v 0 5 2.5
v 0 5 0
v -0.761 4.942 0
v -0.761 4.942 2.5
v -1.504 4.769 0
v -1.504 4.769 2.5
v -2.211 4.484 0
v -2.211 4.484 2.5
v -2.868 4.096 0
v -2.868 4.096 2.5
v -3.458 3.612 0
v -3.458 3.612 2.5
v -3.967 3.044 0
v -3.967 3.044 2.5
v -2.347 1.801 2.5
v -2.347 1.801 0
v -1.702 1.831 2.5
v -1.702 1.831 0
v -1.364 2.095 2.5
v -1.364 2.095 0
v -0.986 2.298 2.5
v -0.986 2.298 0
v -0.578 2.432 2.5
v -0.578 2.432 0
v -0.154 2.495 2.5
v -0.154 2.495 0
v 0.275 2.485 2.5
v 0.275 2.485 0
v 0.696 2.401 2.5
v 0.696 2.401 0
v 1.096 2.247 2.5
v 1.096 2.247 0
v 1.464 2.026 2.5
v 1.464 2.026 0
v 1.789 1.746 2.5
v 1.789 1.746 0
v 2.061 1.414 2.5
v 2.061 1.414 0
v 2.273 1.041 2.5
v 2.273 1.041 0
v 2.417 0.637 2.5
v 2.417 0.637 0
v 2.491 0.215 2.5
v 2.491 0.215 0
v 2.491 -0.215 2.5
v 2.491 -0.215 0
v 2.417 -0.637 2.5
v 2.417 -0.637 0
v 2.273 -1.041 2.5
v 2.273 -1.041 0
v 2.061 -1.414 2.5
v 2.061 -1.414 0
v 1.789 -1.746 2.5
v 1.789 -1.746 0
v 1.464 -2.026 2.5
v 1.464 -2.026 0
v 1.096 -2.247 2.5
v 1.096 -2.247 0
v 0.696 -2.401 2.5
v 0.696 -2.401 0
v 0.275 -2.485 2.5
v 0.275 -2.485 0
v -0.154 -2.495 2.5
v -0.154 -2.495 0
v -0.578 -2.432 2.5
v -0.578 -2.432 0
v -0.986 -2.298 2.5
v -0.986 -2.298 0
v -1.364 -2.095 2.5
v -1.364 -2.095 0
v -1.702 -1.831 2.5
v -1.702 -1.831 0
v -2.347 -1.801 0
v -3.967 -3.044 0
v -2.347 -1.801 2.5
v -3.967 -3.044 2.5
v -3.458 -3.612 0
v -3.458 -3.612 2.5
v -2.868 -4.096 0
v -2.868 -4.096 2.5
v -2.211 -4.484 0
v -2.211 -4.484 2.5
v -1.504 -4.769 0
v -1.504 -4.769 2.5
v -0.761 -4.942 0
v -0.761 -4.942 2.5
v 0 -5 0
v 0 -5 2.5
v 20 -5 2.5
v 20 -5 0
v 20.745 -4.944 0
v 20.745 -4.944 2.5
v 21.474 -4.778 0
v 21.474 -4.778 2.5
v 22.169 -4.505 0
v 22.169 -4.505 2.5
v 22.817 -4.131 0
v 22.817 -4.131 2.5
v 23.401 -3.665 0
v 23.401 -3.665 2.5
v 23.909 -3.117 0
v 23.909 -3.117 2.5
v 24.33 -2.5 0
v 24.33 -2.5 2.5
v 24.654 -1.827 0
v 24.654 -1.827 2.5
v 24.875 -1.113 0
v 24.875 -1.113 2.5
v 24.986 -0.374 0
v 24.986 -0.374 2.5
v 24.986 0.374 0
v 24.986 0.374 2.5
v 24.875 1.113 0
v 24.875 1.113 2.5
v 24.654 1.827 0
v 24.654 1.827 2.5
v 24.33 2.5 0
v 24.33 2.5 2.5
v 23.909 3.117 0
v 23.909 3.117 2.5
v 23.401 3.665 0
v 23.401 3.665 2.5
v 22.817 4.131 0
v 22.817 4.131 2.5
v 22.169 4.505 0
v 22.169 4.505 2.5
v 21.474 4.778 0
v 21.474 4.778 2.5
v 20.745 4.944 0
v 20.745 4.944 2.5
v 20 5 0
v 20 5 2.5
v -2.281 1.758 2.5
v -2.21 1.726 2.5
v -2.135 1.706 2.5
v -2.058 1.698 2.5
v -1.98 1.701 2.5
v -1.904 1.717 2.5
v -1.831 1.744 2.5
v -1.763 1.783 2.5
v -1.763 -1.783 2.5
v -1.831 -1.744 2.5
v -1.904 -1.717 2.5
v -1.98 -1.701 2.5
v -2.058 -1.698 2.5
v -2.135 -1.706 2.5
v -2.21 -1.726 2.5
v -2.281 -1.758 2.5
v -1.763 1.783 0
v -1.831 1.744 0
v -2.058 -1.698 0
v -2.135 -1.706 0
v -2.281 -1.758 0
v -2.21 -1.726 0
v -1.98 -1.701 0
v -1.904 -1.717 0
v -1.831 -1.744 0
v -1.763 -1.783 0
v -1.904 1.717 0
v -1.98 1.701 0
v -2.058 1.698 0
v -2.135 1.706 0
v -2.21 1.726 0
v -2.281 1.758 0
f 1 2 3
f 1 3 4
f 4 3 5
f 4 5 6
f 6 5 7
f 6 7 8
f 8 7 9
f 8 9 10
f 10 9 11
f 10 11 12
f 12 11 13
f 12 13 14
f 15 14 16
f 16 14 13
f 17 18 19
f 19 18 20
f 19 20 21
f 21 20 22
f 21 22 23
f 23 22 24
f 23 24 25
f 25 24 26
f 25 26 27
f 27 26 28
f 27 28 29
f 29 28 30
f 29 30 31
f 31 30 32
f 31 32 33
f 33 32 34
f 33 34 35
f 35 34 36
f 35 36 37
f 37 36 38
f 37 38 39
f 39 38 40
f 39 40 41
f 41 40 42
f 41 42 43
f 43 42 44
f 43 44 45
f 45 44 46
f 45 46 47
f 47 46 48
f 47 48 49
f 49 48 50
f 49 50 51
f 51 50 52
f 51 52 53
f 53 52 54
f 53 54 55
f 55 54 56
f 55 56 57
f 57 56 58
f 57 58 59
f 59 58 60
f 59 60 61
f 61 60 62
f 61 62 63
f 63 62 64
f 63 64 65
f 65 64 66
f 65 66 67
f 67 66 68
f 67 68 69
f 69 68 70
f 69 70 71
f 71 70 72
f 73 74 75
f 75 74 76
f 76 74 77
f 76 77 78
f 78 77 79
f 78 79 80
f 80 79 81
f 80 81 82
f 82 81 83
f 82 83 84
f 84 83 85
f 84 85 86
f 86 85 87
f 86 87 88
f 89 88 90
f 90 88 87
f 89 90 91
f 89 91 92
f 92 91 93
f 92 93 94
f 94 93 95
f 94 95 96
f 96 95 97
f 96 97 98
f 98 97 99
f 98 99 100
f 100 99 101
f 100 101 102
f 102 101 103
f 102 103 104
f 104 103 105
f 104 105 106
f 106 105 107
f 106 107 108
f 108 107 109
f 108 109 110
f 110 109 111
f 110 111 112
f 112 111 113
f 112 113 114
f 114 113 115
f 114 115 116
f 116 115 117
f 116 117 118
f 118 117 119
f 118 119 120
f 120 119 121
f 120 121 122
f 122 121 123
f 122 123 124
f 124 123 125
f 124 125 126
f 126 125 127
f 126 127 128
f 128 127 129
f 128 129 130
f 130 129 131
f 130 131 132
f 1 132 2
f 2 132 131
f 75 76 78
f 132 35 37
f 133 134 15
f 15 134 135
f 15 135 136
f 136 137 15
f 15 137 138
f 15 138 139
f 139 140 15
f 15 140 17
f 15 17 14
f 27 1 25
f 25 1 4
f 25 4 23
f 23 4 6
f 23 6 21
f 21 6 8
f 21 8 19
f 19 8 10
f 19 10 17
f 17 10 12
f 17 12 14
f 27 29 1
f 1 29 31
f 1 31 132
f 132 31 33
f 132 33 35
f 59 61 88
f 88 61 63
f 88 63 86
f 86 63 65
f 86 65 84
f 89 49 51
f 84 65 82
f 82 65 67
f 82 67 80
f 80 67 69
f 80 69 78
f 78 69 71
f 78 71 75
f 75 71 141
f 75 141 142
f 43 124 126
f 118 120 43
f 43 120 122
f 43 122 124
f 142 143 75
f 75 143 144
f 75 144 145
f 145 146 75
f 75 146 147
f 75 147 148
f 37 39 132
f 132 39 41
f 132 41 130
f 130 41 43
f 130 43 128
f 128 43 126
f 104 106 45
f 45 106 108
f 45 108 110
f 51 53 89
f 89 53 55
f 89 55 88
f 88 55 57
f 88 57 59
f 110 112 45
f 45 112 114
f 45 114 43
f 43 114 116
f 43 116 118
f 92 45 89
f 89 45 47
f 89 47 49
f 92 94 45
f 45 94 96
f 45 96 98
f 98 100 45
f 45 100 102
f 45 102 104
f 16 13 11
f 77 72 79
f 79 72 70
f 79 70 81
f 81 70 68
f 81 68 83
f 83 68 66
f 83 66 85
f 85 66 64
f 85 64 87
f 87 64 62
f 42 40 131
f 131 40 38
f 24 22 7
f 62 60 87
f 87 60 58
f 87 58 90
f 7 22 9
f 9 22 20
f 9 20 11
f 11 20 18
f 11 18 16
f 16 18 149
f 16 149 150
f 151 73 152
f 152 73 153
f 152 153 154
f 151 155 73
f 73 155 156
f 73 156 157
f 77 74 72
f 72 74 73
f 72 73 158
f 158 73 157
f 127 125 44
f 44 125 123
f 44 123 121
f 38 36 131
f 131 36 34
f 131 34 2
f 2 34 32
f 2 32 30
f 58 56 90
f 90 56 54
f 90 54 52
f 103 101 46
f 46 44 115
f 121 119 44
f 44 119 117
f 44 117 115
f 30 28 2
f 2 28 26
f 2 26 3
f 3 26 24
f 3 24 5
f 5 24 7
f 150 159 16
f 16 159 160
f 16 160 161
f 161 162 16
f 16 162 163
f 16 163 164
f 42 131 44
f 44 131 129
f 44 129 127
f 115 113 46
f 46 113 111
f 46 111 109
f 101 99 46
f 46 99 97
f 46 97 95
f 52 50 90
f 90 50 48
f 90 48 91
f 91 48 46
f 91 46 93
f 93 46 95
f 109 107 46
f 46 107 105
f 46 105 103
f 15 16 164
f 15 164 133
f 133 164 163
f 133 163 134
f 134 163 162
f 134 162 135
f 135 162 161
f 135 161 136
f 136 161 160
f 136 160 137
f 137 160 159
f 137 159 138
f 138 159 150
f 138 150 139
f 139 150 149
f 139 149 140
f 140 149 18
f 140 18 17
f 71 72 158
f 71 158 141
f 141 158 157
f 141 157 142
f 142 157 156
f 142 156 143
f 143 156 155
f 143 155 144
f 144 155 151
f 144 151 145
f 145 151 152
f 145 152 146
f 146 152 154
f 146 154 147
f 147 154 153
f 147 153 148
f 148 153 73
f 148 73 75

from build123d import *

# Parameters (mm, degrees)
BOSS_EXTRUDE1_DEPTH = 2.5
FILLET1_R           = 0.5


with BuildPart() as part:
    # Sketch1 → Boss-Extrude1 (new body)
    with BuildSketch(Plane.XY):
        with BuildLine():
            Line((-3.966766701, 3.043807145), (-1.983383351, 1.521903573))
            ThreePointArc((-1.983383351, 1.521903573), (2.5, 0), (-1.983383351, -1.521903573))
            Line((-1.983383351, -1.521903573), (-3.966766701, -3.043807145))
            ThreePointArc((-3.966766701, -3.043807145), (-2.211443451, -4.484363708), (0, -5))
            Line((0, -5), (20, -5))
            ThreePointArc((20, -5), (25, 0), (20, 5))
            Line((20, 5), (0, 5))
            ThreePointArc((0, 5), (-2.211443451, 4.484363708), (-3.966766701, 3.043807145))
        make_face()
    extrude(amount=BOSS_EXTRUDE1_DEPTH)

    # Fillet1
    fillet1_edges = [part.edges().sort_by_distance(p)[0] for p in [
        (-1.983383351, -1.521903573, 1.25),
        (-1.983383351, 1.521903573, 1.25),
    ]]
    fillet(fillet1_edges, radius=FILLET1_R)


solid = part.part
